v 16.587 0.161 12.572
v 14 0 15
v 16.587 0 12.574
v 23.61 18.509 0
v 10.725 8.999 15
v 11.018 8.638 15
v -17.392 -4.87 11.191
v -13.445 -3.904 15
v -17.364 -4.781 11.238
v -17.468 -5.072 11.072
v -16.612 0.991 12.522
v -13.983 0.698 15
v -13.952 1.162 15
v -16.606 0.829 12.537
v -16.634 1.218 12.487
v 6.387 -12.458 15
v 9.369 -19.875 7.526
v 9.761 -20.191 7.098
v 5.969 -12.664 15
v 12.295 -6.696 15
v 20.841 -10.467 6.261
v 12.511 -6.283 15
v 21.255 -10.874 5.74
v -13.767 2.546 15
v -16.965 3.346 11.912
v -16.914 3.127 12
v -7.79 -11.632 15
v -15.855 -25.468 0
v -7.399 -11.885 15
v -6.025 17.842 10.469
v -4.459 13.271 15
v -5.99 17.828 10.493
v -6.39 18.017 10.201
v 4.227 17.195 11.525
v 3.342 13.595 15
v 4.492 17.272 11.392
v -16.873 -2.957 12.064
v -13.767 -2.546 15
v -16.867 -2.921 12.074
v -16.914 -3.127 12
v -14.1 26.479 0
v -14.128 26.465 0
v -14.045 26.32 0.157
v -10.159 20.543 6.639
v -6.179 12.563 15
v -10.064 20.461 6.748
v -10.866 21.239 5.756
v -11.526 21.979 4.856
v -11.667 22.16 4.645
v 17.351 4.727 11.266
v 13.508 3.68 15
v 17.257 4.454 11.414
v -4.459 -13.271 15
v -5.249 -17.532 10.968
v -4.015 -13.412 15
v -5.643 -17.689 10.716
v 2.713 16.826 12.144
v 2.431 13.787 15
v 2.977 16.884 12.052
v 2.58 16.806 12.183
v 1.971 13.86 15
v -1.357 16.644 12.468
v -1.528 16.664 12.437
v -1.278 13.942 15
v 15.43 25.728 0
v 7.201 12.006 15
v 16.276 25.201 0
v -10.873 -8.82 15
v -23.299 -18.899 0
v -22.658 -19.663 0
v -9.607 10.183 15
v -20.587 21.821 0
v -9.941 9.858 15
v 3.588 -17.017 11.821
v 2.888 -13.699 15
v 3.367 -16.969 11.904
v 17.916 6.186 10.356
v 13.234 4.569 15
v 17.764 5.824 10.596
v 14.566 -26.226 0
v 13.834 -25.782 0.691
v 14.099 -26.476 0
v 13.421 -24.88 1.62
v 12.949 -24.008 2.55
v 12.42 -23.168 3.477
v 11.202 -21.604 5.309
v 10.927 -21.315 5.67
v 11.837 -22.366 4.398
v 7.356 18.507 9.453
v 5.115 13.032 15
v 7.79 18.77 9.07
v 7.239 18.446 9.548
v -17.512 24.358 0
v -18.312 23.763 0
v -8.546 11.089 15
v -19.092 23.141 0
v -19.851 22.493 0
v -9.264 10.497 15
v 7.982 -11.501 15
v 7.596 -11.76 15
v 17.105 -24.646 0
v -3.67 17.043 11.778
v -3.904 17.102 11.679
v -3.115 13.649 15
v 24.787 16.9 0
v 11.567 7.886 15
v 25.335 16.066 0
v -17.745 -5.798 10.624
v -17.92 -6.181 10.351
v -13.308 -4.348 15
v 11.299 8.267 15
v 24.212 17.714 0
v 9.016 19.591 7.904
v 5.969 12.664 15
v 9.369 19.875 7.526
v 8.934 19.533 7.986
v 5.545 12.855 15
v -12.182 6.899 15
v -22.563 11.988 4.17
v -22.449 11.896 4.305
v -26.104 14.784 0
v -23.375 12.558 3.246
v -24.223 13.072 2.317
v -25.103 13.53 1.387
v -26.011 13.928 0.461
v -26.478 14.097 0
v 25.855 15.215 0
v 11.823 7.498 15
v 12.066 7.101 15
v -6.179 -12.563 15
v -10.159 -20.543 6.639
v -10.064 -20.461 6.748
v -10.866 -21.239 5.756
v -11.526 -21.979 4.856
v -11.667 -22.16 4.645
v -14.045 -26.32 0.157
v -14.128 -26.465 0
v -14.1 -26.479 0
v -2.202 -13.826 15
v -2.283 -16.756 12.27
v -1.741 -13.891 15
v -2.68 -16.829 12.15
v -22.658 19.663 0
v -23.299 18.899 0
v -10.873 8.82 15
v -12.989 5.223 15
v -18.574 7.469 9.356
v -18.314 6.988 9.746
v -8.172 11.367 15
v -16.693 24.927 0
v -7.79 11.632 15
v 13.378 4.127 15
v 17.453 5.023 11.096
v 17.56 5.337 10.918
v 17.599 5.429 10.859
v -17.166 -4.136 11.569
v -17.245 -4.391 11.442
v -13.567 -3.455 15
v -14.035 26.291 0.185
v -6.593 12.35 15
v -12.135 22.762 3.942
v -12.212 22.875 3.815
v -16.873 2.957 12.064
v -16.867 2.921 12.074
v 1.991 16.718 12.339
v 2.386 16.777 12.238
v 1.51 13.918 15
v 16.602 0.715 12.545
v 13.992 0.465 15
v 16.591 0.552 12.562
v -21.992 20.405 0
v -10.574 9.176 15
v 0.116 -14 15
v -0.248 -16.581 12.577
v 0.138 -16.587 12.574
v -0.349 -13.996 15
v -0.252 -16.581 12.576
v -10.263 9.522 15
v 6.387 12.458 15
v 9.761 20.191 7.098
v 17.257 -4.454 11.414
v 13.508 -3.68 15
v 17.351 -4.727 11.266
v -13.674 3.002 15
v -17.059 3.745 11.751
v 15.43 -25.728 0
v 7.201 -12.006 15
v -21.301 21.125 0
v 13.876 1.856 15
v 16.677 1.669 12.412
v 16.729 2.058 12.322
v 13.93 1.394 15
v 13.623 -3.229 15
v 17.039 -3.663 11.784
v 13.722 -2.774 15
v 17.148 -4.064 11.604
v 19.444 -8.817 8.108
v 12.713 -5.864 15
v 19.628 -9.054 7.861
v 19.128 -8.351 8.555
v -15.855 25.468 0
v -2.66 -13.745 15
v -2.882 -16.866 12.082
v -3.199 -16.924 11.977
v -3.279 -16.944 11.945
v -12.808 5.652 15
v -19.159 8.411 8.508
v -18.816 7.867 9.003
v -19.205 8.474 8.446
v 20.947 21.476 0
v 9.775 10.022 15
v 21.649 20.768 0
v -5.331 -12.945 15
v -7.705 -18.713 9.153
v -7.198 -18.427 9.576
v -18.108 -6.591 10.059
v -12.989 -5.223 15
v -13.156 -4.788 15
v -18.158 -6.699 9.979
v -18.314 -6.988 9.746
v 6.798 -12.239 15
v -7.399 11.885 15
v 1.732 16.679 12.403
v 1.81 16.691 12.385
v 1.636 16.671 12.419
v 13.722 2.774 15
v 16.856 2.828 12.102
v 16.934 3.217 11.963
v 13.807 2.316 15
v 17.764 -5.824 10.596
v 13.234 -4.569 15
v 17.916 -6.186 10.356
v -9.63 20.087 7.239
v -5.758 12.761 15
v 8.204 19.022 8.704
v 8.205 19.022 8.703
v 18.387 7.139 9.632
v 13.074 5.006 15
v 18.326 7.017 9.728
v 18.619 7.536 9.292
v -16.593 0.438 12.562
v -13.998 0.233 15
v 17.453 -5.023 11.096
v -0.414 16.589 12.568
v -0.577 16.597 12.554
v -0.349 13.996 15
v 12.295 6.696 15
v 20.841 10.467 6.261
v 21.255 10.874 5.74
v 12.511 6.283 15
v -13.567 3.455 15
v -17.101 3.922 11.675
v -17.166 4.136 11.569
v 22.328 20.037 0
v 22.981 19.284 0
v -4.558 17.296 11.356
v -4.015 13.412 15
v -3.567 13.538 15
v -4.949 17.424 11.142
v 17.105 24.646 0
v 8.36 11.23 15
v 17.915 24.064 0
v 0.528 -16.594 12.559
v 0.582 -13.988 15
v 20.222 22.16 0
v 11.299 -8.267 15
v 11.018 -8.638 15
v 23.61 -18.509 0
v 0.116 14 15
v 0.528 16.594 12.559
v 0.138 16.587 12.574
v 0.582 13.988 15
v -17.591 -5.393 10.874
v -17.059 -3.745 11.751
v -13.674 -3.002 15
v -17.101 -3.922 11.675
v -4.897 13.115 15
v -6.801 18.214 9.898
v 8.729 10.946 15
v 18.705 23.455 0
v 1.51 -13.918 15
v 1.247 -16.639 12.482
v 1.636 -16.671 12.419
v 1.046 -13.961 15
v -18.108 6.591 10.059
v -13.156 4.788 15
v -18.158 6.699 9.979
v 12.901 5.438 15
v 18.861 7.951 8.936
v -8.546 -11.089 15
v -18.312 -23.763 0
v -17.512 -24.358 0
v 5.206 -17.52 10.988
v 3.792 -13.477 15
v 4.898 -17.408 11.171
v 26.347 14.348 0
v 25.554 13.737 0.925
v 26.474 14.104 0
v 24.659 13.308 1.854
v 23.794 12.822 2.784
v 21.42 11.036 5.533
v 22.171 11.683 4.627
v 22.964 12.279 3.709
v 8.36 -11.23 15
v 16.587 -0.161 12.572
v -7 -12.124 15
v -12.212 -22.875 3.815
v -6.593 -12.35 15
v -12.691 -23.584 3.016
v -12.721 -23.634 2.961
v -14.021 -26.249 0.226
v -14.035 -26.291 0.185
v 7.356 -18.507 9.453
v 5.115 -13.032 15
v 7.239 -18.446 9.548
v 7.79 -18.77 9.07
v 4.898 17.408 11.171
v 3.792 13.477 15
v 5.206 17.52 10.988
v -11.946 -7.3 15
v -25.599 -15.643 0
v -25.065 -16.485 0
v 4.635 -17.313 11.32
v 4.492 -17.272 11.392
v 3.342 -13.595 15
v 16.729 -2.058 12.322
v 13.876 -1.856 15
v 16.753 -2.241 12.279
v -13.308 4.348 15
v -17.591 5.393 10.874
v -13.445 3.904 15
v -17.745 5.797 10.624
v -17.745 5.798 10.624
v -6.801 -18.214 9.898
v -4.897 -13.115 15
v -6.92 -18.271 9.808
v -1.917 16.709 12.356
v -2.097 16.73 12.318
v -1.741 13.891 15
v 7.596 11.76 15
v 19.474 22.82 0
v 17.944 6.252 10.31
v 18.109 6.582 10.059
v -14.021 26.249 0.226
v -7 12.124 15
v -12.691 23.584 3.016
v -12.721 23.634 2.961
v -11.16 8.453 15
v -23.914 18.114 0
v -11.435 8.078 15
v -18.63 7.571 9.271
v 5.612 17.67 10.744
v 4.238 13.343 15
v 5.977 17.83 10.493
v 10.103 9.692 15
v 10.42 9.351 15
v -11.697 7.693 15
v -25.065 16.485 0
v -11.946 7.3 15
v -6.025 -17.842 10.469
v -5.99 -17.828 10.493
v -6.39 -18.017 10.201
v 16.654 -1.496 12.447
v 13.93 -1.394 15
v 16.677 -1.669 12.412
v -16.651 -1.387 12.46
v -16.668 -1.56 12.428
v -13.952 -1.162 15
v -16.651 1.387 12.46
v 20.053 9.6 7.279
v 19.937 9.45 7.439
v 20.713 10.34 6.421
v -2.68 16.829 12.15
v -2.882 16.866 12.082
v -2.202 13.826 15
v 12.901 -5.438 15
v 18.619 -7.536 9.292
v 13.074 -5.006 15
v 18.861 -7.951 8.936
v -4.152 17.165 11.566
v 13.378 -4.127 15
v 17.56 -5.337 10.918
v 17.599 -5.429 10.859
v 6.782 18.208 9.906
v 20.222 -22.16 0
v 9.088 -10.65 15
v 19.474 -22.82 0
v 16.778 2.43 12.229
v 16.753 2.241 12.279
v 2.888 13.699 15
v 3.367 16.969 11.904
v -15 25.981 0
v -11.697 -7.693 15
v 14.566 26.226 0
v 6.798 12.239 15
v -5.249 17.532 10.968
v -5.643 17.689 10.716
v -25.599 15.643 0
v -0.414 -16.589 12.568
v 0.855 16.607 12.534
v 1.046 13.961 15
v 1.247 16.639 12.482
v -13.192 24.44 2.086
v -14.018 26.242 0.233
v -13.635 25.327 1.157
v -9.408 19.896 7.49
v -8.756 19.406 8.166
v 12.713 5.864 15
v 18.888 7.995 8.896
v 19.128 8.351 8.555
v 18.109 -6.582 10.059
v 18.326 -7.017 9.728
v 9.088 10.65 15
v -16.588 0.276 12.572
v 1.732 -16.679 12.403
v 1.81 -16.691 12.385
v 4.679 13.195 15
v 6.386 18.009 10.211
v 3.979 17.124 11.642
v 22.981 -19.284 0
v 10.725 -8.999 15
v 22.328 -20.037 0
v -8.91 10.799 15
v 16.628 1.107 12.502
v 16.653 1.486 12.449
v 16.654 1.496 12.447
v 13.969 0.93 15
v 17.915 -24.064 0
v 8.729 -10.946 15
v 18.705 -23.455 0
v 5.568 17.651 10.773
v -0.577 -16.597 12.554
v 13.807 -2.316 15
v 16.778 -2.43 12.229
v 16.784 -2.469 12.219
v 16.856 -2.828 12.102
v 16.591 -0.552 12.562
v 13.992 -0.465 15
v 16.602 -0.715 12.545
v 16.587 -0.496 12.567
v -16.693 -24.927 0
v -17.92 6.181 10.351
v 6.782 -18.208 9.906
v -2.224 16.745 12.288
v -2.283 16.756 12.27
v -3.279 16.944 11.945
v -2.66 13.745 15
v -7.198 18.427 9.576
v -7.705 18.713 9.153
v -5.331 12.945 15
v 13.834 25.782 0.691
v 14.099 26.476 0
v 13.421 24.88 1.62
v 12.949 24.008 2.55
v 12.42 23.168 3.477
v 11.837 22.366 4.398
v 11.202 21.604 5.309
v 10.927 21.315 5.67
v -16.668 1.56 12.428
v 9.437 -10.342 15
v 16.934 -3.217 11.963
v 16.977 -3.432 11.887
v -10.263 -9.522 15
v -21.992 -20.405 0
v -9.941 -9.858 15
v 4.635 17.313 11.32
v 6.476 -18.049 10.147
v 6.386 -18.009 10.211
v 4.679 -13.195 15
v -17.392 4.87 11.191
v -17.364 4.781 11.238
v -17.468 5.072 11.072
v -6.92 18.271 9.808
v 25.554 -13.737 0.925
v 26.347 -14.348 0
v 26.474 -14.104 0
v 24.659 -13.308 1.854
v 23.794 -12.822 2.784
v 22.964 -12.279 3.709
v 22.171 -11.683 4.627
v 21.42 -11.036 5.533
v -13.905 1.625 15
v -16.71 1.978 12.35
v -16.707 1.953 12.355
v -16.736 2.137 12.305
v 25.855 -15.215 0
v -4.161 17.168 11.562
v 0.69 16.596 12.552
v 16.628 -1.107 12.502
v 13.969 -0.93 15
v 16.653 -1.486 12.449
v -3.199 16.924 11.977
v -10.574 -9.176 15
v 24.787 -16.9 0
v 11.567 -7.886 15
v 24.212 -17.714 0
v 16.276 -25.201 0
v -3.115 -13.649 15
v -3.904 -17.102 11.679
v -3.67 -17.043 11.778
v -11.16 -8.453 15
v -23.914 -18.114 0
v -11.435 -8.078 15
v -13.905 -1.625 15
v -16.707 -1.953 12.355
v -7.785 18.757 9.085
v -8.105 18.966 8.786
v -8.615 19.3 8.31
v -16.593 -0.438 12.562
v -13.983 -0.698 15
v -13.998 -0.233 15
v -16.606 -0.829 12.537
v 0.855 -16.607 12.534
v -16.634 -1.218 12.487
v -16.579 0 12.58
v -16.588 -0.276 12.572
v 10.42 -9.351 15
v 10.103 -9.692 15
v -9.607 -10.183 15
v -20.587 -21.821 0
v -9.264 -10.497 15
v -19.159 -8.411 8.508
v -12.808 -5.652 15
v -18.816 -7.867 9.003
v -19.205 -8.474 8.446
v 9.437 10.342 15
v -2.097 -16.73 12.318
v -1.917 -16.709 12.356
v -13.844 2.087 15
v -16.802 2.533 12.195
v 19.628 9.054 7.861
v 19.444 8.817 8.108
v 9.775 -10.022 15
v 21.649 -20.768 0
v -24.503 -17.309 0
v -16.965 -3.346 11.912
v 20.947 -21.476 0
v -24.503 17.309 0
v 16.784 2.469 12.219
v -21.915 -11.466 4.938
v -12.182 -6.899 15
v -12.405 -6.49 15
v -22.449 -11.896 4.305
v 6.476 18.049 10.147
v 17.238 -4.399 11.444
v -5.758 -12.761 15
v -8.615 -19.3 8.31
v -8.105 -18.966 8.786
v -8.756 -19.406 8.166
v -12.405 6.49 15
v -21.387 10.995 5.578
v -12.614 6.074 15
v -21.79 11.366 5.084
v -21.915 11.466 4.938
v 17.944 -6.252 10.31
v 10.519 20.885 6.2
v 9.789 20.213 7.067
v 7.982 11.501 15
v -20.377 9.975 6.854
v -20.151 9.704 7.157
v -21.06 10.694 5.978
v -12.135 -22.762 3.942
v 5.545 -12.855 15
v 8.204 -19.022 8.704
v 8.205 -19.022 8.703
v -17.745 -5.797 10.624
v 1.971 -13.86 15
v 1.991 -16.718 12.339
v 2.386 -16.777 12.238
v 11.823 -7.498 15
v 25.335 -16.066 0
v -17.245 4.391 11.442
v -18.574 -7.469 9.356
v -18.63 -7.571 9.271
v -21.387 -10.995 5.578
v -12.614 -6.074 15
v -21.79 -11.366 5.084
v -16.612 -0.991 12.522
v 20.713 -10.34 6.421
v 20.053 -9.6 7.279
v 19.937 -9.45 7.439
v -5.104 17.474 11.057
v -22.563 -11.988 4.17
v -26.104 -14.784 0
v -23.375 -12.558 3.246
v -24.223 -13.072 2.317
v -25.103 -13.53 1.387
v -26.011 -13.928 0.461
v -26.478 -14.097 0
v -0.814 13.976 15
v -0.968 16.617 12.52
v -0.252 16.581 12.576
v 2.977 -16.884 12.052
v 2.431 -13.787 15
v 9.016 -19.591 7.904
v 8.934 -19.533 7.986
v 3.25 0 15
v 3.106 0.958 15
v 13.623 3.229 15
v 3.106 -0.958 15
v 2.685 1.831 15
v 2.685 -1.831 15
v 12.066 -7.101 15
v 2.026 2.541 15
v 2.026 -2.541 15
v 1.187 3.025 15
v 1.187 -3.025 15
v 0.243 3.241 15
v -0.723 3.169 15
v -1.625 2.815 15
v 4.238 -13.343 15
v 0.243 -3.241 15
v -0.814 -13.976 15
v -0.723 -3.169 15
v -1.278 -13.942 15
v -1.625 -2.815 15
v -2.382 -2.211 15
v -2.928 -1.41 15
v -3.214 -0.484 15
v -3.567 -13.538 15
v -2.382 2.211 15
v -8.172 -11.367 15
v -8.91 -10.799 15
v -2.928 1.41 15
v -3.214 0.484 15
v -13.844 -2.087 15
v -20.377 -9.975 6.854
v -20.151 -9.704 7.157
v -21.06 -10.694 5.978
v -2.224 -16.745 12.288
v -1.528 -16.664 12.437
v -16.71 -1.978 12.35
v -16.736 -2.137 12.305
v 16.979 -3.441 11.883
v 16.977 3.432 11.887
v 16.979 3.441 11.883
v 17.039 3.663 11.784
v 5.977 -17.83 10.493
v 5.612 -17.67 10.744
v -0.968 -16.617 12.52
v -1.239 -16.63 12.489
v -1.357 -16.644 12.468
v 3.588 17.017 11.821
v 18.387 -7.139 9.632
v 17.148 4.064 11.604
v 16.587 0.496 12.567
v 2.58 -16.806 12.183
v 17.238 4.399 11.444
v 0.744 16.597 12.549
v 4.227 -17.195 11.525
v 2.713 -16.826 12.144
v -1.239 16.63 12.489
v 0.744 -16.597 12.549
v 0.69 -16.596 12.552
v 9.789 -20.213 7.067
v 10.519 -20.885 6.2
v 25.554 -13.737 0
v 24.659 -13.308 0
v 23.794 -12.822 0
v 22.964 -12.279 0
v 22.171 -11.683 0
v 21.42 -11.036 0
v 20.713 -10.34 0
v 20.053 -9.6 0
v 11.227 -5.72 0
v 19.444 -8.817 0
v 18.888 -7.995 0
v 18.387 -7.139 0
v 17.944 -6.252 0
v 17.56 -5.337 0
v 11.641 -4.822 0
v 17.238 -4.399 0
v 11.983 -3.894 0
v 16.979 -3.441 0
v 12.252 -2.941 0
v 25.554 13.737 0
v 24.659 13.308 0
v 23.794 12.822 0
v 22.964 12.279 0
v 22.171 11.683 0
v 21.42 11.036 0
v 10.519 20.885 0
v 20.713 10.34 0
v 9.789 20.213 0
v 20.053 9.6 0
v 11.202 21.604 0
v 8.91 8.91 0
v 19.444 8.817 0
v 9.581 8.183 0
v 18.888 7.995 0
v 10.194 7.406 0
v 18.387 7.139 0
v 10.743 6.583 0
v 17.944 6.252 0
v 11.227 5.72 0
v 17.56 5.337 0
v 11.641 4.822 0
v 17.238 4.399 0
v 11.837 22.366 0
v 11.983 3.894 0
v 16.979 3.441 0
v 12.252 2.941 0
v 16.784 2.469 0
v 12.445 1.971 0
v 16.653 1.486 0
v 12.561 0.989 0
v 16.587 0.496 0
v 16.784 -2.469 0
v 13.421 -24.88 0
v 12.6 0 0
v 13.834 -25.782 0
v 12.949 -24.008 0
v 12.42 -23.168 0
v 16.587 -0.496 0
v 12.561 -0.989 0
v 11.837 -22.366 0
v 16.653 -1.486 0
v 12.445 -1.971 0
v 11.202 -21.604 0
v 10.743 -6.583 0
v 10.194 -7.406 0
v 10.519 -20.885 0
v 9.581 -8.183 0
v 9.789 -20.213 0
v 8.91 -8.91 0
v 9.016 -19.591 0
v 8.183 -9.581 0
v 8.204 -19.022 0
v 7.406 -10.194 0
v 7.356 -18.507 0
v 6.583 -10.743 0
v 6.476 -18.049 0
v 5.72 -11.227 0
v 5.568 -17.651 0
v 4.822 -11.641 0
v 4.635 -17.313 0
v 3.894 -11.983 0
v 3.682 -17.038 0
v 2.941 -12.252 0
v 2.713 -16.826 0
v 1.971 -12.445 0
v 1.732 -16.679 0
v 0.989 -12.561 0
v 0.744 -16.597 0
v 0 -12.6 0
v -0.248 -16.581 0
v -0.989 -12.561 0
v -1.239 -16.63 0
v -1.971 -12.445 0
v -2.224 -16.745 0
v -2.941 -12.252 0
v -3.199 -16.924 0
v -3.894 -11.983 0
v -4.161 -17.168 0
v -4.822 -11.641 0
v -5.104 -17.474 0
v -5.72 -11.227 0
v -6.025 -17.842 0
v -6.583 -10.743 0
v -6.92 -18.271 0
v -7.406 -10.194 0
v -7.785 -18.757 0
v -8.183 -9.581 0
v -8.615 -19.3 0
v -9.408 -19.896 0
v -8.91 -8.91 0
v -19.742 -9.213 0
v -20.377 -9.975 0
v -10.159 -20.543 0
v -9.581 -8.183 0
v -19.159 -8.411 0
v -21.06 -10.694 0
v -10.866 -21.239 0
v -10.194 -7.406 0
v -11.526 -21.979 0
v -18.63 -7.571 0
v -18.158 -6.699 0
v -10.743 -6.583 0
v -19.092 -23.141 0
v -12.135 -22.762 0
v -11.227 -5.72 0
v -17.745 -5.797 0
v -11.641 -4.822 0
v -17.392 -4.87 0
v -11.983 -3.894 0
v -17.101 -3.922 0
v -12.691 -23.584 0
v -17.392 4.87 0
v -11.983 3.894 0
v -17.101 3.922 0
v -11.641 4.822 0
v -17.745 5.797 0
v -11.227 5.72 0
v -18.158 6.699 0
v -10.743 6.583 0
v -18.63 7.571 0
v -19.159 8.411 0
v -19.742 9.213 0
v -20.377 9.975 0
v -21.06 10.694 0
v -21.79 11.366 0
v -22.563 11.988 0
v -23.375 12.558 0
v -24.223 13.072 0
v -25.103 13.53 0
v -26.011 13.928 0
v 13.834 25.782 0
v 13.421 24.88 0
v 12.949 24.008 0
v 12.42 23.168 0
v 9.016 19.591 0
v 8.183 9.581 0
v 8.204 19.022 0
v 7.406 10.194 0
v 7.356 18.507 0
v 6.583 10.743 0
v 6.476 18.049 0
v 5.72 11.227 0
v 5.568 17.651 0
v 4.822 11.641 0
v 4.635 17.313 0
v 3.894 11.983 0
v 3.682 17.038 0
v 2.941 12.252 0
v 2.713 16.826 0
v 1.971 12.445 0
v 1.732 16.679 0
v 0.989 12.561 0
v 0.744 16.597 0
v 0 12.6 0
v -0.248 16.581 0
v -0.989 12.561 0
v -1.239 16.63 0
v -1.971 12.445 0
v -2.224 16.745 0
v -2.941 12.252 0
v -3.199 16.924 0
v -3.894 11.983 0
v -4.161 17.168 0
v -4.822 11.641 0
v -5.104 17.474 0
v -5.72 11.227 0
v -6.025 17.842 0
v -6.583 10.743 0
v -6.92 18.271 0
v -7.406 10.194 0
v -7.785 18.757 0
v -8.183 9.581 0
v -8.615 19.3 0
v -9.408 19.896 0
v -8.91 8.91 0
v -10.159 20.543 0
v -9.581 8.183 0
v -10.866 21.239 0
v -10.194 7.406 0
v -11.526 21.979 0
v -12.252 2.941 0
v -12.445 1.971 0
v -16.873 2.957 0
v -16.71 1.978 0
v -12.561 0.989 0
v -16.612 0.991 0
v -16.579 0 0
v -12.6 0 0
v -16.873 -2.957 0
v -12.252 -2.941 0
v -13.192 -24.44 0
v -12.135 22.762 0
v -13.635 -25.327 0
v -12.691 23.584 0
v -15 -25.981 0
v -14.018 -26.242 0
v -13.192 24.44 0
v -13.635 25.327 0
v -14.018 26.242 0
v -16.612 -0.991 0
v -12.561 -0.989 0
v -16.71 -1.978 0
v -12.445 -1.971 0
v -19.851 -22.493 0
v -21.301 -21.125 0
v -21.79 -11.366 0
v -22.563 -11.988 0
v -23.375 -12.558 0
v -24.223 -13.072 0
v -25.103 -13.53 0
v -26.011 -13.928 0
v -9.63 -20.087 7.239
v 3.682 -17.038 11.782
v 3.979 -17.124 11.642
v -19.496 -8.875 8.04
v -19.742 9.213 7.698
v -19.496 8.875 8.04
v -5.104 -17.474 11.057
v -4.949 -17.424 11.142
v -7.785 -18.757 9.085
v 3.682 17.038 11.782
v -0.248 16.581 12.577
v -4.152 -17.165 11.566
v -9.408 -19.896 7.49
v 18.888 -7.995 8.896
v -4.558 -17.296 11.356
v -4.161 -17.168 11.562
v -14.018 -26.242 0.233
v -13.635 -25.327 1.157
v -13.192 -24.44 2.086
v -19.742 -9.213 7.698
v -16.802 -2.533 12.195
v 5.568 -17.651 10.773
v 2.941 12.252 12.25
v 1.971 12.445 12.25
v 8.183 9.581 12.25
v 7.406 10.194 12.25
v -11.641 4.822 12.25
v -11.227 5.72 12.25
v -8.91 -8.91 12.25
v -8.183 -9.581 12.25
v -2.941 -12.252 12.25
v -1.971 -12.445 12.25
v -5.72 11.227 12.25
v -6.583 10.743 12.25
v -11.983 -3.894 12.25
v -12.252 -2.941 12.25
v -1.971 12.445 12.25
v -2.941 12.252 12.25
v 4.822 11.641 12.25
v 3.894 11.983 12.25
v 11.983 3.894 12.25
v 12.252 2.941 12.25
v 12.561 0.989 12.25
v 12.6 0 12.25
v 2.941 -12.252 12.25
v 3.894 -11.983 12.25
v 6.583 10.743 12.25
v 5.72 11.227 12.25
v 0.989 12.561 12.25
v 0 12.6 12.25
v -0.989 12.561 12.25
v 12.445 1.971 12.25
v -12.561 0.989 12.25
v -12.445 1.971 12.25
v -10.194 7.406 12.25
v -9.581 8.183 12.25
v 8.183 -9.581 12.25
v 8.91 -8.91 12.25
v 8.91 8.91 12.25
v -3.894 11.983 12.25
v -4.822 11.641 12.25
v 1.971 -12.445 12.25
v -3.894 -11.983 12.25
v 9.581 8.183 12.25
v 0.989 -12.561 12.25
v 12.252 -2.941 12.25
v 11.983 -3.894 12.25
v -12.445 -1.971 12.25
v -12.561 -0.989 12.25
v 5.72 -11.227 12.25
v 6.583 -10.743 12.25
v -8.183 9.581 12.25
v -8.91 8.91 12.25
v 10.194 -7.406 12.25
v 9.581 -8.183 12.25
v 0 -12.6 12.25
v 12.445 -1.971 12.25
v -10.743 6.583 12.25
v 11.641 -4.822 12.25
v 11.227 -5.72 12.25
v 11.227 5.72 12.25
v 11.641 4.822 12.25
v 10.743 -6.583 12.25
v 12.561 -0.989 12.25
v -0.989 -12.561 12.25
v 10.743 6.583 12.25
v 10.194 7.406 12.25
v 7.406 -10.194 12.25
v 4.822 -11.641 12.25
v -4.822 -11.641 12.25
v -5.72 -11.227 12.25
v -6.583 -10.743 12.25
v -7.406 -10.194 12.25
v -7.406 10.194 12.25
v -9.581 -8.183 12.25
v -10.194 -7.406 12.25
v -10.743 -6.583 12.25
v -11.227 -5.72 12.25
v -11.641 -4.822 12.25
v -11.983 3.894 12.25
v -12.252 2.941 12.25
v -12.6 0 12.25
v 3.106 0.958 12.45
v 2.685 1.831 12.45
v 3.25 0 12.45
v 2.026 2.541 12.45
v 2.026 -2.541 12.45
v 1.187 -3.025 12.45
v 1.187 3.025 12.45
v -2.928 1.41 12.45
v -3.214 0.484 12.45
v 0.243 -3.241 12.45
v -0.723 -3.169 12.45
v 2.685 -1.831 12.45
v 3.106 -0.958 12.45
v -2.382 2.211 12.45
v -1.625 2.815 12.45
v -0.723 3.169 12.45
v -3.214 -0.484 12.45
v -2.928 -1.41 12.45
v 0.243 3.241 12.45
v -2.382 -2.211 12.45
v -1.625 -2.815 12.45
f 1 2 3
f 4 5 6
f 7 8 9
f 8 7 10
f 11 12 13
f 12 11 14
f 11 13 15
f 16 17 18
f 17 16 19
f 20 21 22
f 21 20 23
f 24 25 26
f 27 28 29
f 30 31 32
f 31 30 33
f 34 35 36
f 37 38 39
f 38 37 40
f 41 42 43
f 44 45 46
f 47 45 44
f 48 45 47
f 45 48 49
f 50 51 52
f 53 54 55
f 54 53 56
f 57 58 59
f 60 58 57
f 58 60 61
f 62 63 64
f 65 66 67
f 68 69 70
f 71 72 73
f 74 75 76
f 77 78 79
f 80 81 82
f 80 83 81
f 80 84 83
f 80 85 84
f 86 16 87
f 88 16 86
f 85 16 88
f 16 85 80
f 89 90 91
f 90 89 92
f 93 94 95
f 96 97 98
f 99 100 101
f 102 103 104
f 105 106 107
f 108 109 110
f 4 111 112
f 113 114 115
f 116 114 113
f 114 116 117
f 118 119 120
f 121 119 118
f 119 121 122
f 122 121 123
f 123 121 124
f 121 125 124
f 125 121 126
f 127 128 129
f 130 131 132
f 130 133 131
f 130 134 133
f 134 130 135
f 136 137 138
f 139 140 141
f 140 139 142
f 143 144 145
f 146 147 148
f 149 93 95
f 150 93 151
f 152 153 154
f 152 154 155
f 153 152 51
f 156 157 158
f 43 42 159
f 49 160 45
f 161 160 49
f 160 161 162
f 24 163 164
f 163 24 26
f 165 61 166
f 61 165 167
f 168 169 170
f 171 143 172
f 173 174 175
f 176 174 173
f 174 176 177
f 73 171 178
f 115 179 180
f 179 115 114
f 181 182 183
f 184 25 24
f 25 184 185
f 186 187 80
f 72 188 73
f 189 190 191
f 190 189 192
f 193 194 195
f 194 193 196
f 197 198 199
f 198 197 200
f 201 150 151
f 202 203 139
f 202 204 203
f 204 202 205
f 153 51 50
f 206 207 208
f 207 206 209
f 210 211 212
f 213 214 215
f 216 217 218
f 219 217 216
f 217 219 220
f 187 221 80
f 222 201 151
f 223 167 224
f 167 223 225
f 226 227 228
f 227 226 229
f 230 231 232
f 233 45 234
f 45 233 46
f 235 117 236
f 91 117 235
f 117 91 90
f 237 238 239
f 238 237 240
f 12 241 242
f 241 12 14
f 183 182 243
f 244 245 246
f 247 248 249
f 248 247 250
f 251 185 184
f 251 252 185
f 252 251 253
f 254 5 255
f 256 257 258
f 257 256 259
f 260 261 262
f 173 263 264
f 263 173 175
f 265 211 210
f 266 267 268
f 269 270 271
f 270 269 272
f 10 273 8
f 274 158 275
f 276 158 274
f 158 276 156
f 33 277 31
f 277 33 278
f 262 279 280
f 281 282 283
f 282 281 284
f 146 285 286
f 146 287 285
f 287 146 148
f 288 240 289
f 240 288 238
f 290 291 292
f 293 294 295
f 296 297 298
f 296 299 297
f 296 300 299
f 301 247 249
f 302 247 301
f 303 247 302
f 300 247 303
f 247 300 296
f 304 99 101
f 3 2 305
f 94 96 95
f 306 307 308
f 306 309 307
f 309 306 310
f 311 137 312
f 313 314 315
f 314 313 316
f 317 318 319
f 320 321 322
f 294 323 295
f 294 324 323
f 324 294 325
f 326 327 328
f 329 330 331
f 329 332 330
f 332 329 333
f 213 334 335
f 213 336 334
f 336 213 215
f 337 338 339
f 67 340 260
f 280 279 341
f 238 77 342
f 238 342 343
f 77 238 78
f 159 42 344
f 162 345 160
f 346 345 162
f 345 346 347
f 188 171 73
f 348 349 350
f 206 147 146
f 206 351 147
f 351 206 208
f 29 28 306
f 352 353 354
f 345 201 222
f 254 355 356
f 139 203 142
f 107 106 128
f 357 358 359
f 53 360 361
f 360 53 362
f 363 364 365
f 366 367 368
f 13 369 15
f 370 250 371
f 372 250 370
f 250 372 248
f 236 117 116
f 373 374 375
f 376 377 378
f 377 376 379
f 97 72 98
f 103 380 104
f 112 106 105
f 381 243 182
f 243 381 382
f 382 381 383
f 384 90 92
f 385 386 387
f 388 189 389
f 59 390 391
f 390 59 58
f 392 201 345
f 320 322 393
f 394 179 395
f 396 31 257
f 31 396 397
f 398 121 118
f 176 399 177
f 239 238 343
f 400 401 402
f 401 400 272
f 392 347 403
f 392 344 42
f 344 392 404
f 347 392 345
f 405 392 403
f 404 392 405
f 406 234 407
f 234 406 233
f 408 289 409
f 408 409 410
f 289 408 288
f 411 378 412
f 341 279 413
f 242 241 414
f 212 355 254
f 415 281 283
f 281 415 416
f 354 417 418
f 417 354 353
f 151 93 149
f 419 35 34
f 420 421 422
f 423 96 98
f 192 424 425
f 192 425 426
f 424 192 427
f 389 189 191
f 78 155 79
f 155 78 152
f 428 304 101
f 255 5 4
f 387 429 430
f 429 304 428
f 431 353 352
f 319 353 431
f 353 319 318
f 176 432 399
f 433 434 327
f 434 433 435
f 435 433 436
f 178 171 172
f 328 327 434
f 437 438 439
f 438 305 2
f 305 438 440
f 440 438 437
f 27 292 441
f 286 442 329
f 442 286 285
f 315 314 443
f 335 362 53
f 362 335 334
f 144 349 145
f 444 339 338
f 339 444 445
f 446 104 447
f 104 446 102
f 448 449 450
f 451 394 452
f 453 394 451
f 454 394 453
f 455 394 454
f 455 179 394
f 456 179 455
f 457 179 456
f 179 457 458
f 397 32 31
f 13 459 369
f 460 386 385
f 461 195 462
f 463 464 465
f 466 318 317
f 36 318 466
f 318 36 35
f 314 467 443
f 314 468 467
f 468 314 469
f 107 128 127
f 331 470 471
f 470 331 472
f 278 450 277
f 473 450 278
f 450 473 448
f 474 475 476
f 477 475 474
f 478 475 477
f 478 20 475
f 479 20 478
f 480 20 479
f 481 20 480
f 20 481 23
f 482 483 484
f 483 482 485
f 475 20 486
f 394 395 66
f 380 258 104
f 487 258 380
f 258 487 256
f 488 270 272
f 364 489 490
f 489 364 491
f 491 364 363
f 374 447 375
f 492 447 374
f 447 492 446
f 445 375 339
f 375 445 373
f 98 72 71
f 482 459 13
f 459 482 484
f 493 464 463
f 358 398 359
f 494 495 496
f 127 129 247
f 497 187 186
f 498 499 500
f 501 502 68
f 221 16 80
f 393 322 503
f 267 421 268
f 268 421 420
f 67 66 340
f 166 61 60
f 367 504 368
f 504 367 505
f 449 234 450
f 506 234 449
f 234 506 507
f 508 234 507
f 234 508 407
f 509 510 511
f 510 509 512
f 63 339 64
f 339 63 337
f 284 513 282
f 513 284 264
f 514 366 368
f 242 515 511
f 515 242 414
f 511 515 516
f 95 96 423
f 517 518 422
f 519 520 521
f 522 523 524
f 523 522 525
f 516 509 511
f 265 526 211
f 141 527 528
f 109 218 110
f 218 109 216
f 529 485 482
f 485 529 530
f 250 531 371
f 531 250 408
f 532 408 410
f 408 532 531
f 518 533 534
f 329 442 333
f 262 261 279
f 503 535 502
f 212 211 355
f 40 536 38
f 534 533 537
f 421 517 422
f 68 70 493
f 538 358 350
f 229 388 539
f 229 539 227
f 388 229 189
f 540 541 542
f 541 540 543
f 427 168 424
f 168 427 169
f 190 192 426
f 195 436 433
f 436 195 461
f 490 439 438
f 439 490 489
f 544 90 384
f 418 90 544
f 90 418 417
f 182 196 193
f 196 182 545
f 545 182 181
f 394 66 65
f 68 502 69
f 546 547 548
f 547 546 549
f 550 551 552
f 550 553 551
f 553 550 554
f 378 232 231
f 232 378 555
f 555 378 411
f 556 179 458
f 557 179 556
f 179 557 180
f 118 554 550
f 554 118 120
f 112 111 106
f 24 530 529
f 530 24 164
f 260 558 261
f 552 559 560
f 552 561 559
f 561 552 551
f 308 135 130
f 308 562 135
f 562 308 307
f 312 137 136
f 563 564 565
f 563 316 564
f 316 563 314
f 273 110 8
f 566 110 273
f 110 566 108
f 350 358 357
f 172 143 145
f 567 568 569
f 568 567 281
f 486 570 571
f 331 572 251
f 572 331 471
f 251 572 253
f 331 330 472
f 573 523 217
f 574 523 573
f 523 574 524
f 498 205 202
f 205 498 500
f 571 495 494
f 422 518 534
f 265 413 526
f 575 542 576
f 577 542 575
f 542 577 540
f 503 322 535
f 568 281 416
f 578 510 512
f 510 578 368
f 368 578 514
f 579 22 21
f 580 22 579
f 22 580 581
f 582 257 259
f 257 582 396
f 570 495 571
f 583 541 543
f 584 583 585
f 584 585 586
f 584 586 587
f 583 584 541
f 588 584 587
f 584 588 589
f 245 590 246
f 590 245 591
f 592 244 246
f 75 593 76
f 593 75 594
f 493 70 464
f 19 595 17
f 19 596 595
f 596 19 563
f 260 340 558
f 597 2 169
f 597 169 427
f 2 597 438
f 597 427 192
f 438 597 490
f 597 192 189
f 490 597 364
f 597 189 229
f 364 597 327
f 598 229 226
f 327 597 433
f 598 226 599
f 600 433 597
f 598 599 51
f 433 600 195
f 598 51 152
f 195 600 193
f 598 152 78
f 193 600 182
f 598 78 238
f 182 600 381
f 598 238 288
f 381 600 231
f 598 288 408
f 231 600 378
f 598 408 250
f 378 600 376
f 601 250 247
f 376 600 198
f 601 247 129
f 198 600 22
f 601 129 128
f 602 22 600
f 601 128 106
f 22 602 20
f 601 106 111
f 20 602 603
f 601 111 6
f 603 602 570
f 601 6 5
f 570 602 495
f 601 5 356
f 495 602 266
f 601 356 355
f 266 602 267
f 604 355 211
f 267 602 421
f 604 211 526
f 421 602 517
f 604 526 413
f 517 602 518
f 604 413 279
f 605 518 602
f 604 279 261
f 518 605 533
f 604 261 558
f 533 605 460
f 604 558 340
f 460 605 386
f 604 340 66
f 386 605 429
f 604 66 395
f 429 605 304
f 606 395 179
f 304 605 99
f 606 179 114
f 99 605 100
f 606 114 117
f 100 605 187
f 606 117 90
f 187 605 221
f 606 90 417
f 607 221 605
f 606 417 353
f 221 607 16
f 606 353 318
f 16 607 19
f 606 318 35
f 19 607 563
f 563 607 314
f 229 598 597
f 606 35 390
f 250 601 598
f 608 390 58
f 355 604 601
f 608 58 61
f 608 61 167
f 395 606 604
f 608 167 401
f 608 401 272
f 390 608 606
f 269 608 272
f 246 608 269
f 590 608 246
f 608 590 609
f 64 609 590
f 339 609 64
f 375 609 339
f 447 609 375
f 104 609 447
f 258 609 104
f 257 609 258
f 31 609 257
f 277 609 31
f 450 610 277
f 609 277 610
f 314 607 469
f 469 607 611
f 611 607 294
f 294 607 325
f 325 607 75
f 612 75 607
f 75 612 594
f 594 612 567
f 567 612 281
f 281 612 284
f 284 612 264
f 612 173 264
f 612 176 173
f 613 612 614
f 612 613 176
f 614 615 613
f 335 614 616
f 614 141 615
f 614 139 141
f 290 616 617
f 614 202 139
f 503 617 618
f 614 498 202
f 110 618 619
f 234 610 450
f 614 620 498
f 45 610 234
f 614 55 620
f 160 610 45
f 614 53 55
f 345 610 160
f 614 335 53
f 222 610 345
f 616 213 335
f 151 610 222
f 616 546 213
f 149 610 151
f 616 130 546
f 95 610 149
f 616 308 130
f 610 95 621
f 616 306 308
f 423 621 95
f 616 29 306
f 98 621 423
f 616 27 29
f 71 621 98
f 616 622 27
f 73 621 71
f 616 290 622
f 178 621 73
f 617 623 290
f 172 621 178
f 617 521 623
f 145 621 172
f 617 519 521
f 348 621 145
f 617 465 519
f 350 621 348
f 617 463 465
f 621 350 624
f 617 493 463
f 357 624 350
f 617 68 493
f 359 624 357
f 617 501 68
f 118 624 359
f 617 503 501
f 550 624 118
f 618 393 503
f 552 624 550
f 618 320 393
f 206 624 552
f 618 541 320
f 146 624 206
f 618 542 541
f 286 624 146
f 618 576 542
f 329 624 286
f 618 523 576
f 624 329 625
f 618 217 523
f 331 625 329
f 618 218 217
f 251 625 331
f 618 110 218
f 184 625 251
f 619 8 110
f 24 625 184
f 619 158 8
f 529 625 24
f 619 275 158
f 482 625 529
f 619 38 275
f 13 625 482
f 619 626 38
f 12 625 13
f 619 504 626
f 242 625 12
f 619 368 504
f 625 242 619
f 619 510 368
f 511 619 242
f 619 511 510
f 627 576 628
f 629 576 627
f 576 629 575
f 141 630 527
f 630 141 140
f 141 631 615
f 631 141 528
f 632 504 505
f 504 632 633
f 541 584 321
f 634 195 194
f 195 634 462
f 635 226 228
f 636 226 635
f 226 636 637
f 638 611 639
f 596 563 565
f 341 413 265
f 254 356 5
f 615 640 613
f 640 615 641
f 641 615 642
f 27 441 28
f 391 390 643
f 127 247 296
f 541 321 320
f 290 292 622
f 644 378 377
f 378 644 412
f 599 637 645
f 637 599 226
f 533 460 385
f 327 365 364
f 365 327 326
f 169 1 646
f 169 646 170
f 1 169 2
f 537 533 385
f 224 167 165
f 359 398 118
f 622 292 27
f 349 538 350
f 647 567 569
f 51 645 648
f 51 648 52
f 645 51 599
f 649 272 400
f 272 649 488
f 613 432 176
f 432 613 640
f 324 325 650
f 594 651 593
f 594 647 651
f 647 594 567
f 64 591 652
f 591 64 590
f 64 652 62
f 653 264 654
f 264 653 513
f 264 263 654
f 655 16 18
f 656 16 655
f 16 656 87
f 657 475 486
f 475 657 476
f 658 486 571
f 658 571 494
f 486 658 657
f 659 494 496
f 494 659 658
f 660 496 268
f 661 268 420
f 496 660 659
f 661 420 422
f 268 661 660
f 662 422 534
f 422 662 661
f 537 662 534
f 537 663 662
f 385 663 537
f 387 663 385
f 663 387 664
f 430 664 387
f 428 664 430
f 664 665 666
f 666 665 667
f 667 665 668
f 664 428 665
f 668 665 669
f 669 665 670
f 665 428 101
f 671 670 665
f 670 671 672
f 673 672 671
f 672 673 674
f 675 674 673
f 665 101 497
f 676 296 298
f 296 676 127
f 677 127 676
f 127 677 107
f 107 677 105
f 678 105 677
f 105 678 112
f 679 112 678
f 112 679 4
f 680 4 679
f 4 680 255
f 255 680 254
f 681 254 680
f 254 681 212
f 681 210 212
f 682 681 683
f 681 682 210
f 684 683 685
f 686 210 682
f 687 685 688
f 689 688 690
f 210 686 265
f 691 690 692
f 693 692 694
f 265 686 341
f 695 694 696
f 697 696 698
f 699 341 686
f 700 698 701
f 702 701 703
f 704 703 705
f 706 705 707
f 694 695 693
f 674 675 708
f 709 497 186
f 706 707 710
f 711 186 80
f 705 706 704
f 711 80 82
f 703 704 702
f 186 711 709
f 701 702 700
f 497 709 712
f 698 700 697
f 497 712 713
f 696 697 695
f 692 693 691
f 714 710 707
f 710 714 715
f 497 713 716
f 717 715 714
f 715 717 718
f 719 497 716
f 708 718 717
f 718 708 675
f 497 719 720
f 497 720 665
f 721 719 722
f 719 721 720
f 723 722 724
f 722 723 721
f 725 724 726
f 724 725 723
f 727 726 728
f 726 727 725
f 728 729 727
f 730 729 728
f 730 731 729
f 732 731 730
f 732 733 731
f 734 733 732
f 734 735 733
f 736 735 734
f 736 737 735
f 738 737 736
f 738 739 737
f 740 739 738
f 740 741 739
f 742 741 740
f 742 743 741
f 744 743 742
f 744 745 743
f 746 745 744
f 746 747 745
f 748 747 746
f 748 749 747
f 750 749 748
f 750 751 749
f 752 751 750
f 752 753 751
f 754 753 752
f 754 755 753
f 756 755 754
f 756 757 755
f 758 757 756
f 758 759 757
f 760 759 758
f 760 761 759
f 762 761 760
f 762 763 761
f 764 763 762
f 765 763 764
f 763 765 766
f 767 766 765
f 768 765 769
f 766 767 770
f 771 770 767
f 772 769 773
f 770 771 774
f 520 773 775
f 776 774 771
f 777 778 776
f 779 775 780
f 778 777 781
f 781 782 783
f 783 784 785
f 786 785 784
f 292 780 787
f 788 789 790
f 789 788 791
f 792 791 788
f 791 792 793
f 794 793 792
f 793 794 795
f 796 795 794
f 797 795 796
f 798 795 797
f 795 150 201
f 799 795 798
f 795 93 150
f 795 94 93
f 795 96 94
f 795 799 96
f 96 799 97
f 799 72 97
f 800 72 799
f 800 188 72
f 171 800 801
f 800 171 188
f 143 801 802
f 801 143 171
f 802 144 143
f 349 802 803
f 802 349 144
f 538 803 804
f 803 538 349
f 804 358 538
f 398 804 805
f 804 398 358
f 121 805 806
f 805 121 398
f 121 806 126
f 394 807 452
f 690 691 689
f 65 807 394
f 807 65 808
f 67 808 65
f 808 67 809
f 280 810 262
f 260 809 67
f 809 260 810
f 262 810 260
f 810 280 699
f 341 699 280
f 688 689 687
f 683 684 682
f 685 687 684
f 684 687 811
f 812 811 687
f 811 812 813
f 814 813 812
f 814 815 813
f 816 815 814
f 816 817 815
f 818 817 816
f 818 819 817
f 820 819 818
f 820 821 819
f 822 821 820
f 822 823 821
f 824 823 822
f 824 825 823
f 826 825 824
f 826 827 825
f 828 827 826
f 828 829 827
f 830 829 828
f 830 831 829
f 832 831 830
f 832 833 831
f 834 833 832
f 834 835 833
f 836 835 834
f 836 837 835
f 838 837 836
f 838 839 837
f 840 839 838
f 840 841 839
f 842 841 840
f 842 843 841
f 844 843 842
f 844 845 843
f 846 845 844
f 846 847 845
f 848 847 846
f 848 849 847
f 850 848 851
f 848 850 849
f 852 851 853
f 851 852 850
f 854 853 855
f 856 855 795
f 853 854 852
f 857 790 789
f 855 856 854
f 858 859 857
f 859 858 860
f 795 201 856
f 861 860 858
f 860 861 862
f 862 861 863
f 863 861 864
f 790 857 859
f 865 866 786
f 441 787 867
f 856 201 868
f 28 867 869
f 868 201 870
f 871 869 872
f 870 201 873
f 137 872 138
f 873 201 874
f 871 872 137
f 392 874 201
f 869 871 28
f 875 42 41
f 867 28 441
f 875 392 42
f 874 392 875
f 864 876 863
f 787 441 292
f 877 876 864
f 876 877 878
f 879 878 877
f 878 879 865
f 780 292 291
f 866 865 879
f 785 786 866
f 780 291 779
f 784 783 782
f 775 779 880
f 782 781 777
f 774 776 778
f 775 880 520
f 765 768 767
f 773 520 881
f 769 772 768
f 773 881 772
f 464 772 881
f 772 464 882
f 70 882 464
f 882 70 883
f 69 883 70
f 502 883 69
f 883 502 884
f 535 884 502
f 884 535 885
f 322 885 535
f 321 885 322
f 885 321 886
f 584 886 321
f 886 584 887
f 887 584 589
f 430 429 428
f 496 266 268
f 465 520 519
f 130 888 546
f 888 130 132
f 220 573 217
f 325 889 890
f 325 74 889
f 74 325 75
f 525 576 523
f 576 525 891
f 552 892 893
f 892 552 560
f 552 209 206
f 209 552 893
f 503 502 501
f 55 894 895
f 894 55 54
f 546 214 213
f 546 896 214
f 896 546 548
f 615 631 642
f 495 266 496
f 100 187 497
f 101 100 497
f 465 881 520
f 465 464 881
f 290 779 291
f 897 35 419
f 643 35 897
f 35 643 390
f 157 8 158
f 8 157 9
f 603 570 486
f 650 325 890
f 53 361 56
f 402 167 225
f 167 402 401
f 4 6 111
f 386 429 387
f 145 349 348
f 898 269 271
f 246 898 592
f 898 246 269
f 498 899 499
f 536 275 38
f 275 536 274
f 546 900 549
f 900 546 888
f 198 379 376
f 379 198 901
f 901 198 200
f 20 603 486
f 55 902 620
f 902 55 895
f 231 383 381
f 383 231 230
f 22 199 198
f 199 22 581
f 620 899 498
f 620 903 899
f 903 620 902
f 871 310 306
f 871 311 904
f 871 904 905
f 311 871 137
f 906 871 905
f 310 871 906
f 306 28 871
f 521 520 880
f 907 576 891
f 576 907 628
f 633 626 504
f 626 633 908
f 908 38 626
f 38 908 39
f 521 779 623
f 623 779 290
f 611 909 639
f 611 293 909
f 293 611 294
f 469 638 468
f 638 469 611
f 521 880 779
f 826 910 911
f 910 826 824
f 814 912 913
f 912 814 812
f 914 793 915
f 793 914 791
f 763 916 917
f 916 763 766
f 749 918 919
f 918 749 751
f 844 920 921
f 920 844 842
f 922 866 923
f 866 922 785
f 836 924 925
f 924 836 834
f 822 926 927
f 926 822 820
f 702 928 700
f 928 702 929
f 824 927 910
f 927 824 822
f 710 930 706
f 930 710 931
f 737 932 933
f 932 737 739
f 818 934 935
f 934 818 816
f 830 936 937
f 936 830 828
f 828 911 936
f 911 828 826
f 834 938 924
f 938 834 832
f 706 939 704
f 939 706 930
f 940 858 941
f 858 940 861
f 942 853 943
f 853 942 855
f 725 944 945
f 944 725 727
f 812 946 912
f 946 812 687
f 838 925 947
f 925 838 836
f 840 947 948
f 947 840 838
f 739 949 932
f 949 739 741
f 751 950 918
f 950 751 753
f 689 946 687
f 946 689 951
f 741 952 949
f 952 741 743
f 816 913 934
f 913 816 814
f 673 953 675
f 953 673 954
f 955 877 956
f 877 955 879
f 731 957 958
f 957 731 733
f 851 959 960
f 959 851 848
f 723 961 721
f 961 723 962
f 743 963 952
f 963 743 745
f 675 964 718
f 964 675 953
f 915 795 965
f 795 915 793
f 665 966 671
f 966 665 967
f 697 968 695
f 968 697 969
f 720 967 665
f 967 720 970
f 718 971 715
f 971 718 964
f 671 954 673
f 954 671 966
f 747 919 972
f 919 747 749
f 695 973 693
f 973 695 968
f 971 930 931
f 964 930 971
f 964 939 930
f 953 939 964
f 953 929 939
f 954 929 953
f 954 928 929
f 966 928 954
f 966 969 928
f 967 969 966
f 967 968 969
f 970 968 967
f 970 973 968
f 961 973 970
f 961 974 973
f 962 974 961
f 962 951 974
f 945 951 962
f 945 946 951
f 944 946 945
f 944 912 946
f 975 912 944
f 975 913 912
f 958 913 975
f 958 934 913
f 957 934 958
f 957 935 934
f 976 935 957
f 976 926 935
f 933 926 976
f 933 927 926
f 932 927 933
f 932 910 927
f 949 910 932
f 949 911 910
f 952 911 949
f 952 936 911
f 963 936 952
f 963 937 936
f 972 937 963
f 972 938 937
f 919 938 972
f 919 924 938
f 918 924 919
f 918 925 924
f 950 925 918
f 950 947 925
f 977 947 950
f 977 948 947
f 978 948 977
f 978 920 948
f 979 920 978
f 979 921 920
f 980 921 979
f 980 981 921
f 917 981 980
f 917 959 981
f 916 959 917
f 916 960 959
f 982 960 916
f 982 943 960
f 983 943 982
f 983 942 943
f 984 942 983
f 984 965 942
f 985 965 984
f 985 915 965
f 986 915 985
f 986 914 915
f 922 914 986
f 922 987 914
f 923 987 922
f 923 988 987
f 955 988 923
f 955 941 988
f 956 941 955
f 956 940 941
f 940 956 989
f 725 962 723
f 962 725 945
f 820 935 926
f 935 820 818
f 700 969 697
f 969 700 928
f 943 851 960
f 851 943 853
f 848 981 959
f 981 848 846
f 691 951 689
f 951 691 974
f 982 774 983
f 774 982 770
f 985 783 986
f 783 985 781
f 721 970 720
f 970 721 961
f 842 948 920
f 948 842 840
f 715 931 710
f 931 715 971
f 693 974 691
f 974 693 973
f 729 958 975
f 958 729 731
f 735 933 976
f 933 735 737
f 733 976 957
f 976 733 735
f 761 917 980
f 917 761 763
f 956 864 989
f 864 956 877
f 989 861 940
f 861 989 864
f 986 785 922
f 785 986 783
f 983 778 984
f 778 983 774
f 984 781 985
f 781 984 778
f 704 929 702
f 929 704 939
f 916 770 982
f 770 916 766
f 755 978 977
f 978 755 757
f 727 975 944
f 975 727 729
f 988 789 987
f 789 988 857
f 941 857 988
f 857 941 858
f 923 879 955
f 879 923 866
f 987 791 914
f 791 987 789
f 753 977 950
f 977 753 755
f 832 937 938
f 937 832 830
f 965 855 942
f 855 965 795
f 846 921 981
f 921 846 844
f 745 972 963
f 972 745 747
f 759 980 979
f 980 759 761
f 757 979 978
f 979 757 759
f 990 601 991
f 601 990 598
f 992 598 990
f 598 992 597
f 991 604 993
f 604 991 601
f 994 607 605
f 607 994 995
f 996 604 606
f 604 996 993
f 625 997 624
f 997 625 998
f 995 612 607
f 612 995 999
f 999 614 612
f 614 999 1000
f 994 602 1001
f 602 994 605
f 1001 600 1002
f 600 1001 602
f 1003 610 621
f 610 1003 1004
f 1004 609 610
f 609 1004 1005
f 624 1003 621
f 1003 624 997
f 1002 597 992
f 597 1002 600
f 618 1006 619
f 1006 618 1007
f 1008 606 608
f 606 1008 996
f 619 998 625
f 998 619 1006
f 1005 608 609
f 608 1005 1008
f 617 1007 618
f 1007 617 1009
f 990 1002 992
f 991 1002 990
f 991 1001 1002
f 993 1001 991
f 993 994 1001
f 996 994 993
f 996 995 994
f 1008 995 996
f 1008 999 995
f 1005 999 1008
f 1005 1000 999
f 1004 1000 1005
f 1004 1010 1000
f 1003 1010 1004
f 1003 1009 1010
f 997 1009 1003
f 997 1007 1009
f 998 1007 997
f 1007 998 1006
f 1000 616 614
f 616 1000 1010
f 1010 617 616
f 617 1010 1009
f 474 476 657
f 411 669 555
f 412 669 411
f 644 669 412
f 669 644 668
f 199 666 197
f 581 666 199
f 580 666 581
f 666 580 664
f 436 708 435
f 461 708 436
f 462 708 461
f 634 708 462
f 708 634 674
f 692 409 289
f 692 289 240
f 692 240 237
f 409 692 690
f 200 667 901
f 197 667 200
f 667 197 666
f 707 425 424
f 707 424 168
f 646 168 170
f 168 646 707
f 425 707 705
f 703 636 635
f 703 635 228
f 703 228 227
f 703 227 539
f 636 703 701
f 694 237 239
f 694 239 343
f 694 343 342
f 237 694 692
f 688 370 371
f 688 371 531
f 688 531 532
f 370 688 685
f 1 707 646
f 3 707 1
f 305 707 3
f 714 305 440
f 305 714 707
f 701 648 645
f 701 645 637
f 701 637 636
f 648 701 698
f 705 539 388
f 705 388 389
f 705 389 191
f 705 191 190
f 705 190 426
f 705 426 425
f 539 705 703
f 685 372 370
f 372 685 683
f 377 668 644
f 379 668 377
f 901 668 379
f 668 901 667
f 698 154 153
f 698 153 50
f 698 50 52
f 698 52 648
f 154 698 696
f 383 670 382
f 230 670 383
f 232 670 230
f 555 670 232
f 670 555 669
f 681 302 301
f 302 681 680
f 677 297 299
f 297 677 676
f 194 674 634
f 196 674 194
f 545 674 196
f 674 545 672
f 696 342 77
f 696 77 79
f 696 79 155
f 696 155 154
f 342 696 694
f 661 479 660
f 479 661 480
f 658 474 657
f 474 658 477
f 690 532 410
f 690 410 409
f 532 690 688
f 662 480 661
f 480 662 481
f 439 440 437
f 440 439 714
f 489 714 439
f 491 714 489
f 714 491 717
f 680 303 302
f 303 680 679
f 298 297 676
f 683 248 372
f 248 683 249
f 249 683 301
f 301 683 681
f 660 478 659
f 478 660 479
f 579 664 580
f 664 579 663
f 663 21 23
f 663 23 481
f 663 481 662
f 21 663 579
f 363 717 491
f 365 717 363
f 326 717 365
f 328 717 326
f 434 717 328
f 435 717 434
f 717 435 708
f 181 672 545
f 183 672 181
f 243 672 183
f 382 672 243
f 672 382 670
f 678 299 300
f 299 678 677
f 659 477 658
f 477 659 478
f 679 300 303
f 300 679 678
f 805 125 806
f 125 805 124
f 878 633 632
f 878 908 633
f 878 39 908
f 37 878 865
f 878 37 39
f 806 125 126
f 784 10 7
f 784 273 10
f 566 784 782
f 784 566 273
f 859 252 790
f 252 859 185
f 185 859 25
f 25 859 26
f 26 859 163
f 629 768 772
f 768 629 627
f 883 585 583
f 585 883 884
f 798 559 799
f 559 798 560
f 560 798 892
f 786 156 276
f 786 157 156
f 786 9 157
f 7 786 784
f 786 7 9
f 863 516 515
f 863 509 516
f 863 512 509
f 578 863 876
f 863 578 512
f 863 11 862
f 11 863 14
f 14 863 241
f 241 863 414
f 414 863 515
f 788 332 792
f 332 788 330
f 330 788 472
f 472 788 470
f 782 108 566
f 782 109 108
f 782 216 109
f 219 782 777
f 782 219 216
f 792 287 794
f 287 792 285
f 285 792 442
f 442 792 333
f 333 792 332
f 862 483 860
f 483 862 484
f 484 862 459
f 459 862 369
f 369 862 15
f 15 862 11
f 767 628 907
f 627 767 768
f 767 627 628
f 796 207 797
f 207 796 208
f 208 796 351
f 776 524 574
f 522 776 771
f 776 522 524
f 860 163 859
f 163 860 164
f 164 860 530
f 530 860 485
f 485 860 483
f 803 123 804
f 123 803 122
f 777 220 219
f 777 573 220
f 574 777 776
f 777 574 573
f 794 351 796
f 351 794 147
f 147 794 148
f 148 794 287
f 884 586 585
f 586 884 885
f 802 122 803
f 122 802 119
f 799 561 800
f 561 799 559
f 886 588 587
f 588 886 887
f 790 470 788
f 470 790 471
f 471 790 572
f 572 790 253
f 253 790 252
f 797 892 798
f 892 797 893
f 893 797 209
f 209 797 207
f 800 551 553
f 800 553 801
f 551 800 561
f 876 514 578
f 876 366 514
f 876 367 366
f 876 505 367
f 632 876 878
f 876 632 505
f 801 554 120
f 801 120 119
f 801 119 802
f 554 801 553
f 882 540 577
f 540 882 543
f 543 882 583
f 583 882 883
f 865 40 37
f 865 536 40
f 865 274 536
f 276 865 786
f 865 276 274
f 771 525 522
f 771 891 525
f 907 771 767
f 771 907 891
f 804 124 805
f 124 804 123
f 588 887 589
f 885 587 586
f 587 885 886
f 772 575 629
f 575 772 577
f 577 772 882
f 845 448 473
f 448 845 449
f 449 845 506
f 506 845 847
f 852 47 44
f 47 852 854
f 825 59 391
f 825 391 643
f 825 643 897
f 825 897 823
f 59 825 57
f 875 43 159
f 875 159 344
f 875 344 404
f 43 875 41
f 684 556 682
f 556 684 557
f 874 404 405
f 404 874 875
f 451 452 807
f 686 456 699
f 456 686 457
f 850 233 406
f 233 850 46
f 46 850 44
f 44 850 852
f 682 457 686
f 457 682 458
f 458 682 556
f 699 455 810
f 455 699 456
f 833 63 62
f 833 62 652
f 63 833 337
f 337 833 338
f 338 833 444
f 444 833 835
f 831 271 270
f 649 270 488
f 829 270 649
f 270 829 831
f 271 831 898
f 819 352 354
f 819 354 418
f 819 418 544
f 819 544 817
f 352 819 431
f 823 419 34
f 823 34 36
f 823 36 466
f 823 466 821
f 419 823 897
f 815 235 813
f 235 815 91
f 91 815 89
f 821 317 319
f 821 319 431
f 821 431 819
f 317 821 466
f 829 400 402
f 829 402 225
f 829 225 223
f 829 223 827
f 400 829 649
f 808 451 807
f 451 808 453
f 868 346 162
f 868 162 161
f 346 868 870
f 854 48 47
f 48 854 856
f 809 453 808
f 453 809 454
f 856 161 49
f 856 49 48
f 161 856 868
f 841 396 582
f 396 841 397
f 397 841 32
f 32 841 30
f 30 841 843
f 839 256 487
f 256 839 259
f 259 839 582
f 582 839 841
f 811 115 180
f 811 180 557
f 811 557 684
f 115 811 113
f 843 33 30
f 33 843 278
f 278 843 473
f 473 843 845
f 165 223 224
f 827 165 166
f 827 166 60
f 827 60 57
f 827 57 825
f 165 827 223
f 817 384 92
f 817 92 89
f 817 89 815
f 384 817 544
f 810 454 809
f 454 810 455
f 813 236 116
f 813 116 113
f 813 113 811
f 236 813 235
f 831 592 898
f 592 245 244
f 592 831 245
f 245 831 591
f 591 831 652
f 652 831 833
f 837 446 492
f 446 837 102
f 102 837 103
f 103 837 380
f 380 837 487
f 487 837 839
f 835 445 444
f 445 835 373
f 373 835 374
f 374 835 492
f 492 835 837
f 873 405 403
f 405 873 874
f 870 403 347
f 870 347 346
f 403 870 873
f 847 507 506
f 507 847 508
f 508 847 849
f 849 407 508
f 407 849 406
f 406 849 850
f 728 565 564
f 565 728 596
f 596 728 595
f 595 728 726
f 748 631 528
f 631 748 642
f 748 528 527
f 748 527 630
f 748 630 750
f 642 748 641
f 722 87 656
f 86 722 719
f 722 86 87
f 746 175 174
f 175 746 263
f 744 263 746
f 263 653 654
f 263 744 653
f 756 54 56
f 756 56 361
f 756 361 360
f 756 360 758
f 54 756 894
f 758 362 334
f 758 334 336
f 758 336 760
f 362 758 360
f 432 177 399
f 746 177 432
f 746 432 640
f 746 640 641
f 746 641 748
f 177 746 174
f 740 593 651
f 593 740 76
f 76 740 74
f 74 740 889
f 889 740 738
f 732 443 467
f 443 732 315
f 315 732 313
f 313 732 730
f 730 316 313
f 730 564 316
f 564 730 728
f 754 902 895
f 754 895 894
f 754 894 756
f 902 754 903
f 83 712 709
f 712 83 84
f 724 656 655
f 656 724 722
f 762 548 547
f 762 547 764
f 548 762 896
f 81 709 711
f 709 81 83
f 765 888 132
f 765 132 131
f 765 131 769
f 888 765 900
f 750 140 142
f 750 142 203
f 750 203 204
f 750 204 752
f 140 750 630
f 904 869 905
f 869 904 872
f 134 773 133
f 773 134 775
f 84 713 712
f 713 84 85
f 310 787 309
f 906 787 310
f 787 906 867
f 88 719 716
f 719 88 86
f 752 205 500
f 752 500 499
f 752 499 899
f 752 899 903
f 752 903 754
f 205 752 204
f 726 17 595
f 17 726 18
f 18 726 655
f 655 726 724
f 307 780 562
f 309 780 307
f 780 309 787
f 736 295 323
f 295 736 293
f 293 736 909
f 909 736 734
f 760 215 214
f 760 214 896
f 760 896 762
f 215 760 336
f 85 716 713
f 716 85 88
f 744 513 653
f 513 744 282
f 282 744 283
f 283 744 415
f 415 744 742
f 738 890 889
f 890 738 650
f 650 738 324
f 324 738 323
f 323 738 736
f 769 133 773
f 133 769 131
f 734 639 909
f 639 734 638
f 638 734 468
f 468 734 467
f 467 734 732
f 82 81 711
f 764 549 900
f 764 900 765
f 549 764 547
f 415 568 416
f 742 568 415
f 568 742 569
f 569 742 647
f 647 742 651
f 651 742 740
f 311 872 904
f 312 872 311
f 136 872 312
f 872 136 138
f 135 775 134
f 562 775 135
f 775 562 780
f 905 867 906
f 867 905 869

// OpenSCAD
// bearing dimentions
bearing_d = 25.2;
bearing_h =  12.35;

// max and min size of the spool holder diameter
max_d = 60;
min_d = 28;

// height of the holder
cone_h = 15;

// rod diameter
rod_d = 6.5;


// circle control
$fa = 1;
$fs = 1;


difference(){
// cone
	translate([0,0,cone_h/2])cylinder(r1 = max_d/2, r2 = min_d/2, h = cone_h, center=true);

// cutout for the bearing
	translate([0,0,bearing_h/2-.1]) cylinder(r=bearing_d/2, h=bearing_h, center=true);
	
// the center rod 
	translate([0,0,max_d/2+bearing_h+.1]) cylinder(r=rod_d/2, h=max_d, center=true);
	
// material saving cutout
   translate([max_d/1.9, 0,0]) cylinder(r=max_d/4, h=max_d, center=true);
    translate([-max_d/1.9, 0,0]) cylinder(r=max_d/4, h=max_d, center=true);
    translate([0,max_d/1.9, 0]) cylinder(r=max_d/4, h=max_d, center=true);
    translate([0,-max_d/1.9,0]) cylinder(r=max_d/4, h=max_d, center=true);	
  
}
